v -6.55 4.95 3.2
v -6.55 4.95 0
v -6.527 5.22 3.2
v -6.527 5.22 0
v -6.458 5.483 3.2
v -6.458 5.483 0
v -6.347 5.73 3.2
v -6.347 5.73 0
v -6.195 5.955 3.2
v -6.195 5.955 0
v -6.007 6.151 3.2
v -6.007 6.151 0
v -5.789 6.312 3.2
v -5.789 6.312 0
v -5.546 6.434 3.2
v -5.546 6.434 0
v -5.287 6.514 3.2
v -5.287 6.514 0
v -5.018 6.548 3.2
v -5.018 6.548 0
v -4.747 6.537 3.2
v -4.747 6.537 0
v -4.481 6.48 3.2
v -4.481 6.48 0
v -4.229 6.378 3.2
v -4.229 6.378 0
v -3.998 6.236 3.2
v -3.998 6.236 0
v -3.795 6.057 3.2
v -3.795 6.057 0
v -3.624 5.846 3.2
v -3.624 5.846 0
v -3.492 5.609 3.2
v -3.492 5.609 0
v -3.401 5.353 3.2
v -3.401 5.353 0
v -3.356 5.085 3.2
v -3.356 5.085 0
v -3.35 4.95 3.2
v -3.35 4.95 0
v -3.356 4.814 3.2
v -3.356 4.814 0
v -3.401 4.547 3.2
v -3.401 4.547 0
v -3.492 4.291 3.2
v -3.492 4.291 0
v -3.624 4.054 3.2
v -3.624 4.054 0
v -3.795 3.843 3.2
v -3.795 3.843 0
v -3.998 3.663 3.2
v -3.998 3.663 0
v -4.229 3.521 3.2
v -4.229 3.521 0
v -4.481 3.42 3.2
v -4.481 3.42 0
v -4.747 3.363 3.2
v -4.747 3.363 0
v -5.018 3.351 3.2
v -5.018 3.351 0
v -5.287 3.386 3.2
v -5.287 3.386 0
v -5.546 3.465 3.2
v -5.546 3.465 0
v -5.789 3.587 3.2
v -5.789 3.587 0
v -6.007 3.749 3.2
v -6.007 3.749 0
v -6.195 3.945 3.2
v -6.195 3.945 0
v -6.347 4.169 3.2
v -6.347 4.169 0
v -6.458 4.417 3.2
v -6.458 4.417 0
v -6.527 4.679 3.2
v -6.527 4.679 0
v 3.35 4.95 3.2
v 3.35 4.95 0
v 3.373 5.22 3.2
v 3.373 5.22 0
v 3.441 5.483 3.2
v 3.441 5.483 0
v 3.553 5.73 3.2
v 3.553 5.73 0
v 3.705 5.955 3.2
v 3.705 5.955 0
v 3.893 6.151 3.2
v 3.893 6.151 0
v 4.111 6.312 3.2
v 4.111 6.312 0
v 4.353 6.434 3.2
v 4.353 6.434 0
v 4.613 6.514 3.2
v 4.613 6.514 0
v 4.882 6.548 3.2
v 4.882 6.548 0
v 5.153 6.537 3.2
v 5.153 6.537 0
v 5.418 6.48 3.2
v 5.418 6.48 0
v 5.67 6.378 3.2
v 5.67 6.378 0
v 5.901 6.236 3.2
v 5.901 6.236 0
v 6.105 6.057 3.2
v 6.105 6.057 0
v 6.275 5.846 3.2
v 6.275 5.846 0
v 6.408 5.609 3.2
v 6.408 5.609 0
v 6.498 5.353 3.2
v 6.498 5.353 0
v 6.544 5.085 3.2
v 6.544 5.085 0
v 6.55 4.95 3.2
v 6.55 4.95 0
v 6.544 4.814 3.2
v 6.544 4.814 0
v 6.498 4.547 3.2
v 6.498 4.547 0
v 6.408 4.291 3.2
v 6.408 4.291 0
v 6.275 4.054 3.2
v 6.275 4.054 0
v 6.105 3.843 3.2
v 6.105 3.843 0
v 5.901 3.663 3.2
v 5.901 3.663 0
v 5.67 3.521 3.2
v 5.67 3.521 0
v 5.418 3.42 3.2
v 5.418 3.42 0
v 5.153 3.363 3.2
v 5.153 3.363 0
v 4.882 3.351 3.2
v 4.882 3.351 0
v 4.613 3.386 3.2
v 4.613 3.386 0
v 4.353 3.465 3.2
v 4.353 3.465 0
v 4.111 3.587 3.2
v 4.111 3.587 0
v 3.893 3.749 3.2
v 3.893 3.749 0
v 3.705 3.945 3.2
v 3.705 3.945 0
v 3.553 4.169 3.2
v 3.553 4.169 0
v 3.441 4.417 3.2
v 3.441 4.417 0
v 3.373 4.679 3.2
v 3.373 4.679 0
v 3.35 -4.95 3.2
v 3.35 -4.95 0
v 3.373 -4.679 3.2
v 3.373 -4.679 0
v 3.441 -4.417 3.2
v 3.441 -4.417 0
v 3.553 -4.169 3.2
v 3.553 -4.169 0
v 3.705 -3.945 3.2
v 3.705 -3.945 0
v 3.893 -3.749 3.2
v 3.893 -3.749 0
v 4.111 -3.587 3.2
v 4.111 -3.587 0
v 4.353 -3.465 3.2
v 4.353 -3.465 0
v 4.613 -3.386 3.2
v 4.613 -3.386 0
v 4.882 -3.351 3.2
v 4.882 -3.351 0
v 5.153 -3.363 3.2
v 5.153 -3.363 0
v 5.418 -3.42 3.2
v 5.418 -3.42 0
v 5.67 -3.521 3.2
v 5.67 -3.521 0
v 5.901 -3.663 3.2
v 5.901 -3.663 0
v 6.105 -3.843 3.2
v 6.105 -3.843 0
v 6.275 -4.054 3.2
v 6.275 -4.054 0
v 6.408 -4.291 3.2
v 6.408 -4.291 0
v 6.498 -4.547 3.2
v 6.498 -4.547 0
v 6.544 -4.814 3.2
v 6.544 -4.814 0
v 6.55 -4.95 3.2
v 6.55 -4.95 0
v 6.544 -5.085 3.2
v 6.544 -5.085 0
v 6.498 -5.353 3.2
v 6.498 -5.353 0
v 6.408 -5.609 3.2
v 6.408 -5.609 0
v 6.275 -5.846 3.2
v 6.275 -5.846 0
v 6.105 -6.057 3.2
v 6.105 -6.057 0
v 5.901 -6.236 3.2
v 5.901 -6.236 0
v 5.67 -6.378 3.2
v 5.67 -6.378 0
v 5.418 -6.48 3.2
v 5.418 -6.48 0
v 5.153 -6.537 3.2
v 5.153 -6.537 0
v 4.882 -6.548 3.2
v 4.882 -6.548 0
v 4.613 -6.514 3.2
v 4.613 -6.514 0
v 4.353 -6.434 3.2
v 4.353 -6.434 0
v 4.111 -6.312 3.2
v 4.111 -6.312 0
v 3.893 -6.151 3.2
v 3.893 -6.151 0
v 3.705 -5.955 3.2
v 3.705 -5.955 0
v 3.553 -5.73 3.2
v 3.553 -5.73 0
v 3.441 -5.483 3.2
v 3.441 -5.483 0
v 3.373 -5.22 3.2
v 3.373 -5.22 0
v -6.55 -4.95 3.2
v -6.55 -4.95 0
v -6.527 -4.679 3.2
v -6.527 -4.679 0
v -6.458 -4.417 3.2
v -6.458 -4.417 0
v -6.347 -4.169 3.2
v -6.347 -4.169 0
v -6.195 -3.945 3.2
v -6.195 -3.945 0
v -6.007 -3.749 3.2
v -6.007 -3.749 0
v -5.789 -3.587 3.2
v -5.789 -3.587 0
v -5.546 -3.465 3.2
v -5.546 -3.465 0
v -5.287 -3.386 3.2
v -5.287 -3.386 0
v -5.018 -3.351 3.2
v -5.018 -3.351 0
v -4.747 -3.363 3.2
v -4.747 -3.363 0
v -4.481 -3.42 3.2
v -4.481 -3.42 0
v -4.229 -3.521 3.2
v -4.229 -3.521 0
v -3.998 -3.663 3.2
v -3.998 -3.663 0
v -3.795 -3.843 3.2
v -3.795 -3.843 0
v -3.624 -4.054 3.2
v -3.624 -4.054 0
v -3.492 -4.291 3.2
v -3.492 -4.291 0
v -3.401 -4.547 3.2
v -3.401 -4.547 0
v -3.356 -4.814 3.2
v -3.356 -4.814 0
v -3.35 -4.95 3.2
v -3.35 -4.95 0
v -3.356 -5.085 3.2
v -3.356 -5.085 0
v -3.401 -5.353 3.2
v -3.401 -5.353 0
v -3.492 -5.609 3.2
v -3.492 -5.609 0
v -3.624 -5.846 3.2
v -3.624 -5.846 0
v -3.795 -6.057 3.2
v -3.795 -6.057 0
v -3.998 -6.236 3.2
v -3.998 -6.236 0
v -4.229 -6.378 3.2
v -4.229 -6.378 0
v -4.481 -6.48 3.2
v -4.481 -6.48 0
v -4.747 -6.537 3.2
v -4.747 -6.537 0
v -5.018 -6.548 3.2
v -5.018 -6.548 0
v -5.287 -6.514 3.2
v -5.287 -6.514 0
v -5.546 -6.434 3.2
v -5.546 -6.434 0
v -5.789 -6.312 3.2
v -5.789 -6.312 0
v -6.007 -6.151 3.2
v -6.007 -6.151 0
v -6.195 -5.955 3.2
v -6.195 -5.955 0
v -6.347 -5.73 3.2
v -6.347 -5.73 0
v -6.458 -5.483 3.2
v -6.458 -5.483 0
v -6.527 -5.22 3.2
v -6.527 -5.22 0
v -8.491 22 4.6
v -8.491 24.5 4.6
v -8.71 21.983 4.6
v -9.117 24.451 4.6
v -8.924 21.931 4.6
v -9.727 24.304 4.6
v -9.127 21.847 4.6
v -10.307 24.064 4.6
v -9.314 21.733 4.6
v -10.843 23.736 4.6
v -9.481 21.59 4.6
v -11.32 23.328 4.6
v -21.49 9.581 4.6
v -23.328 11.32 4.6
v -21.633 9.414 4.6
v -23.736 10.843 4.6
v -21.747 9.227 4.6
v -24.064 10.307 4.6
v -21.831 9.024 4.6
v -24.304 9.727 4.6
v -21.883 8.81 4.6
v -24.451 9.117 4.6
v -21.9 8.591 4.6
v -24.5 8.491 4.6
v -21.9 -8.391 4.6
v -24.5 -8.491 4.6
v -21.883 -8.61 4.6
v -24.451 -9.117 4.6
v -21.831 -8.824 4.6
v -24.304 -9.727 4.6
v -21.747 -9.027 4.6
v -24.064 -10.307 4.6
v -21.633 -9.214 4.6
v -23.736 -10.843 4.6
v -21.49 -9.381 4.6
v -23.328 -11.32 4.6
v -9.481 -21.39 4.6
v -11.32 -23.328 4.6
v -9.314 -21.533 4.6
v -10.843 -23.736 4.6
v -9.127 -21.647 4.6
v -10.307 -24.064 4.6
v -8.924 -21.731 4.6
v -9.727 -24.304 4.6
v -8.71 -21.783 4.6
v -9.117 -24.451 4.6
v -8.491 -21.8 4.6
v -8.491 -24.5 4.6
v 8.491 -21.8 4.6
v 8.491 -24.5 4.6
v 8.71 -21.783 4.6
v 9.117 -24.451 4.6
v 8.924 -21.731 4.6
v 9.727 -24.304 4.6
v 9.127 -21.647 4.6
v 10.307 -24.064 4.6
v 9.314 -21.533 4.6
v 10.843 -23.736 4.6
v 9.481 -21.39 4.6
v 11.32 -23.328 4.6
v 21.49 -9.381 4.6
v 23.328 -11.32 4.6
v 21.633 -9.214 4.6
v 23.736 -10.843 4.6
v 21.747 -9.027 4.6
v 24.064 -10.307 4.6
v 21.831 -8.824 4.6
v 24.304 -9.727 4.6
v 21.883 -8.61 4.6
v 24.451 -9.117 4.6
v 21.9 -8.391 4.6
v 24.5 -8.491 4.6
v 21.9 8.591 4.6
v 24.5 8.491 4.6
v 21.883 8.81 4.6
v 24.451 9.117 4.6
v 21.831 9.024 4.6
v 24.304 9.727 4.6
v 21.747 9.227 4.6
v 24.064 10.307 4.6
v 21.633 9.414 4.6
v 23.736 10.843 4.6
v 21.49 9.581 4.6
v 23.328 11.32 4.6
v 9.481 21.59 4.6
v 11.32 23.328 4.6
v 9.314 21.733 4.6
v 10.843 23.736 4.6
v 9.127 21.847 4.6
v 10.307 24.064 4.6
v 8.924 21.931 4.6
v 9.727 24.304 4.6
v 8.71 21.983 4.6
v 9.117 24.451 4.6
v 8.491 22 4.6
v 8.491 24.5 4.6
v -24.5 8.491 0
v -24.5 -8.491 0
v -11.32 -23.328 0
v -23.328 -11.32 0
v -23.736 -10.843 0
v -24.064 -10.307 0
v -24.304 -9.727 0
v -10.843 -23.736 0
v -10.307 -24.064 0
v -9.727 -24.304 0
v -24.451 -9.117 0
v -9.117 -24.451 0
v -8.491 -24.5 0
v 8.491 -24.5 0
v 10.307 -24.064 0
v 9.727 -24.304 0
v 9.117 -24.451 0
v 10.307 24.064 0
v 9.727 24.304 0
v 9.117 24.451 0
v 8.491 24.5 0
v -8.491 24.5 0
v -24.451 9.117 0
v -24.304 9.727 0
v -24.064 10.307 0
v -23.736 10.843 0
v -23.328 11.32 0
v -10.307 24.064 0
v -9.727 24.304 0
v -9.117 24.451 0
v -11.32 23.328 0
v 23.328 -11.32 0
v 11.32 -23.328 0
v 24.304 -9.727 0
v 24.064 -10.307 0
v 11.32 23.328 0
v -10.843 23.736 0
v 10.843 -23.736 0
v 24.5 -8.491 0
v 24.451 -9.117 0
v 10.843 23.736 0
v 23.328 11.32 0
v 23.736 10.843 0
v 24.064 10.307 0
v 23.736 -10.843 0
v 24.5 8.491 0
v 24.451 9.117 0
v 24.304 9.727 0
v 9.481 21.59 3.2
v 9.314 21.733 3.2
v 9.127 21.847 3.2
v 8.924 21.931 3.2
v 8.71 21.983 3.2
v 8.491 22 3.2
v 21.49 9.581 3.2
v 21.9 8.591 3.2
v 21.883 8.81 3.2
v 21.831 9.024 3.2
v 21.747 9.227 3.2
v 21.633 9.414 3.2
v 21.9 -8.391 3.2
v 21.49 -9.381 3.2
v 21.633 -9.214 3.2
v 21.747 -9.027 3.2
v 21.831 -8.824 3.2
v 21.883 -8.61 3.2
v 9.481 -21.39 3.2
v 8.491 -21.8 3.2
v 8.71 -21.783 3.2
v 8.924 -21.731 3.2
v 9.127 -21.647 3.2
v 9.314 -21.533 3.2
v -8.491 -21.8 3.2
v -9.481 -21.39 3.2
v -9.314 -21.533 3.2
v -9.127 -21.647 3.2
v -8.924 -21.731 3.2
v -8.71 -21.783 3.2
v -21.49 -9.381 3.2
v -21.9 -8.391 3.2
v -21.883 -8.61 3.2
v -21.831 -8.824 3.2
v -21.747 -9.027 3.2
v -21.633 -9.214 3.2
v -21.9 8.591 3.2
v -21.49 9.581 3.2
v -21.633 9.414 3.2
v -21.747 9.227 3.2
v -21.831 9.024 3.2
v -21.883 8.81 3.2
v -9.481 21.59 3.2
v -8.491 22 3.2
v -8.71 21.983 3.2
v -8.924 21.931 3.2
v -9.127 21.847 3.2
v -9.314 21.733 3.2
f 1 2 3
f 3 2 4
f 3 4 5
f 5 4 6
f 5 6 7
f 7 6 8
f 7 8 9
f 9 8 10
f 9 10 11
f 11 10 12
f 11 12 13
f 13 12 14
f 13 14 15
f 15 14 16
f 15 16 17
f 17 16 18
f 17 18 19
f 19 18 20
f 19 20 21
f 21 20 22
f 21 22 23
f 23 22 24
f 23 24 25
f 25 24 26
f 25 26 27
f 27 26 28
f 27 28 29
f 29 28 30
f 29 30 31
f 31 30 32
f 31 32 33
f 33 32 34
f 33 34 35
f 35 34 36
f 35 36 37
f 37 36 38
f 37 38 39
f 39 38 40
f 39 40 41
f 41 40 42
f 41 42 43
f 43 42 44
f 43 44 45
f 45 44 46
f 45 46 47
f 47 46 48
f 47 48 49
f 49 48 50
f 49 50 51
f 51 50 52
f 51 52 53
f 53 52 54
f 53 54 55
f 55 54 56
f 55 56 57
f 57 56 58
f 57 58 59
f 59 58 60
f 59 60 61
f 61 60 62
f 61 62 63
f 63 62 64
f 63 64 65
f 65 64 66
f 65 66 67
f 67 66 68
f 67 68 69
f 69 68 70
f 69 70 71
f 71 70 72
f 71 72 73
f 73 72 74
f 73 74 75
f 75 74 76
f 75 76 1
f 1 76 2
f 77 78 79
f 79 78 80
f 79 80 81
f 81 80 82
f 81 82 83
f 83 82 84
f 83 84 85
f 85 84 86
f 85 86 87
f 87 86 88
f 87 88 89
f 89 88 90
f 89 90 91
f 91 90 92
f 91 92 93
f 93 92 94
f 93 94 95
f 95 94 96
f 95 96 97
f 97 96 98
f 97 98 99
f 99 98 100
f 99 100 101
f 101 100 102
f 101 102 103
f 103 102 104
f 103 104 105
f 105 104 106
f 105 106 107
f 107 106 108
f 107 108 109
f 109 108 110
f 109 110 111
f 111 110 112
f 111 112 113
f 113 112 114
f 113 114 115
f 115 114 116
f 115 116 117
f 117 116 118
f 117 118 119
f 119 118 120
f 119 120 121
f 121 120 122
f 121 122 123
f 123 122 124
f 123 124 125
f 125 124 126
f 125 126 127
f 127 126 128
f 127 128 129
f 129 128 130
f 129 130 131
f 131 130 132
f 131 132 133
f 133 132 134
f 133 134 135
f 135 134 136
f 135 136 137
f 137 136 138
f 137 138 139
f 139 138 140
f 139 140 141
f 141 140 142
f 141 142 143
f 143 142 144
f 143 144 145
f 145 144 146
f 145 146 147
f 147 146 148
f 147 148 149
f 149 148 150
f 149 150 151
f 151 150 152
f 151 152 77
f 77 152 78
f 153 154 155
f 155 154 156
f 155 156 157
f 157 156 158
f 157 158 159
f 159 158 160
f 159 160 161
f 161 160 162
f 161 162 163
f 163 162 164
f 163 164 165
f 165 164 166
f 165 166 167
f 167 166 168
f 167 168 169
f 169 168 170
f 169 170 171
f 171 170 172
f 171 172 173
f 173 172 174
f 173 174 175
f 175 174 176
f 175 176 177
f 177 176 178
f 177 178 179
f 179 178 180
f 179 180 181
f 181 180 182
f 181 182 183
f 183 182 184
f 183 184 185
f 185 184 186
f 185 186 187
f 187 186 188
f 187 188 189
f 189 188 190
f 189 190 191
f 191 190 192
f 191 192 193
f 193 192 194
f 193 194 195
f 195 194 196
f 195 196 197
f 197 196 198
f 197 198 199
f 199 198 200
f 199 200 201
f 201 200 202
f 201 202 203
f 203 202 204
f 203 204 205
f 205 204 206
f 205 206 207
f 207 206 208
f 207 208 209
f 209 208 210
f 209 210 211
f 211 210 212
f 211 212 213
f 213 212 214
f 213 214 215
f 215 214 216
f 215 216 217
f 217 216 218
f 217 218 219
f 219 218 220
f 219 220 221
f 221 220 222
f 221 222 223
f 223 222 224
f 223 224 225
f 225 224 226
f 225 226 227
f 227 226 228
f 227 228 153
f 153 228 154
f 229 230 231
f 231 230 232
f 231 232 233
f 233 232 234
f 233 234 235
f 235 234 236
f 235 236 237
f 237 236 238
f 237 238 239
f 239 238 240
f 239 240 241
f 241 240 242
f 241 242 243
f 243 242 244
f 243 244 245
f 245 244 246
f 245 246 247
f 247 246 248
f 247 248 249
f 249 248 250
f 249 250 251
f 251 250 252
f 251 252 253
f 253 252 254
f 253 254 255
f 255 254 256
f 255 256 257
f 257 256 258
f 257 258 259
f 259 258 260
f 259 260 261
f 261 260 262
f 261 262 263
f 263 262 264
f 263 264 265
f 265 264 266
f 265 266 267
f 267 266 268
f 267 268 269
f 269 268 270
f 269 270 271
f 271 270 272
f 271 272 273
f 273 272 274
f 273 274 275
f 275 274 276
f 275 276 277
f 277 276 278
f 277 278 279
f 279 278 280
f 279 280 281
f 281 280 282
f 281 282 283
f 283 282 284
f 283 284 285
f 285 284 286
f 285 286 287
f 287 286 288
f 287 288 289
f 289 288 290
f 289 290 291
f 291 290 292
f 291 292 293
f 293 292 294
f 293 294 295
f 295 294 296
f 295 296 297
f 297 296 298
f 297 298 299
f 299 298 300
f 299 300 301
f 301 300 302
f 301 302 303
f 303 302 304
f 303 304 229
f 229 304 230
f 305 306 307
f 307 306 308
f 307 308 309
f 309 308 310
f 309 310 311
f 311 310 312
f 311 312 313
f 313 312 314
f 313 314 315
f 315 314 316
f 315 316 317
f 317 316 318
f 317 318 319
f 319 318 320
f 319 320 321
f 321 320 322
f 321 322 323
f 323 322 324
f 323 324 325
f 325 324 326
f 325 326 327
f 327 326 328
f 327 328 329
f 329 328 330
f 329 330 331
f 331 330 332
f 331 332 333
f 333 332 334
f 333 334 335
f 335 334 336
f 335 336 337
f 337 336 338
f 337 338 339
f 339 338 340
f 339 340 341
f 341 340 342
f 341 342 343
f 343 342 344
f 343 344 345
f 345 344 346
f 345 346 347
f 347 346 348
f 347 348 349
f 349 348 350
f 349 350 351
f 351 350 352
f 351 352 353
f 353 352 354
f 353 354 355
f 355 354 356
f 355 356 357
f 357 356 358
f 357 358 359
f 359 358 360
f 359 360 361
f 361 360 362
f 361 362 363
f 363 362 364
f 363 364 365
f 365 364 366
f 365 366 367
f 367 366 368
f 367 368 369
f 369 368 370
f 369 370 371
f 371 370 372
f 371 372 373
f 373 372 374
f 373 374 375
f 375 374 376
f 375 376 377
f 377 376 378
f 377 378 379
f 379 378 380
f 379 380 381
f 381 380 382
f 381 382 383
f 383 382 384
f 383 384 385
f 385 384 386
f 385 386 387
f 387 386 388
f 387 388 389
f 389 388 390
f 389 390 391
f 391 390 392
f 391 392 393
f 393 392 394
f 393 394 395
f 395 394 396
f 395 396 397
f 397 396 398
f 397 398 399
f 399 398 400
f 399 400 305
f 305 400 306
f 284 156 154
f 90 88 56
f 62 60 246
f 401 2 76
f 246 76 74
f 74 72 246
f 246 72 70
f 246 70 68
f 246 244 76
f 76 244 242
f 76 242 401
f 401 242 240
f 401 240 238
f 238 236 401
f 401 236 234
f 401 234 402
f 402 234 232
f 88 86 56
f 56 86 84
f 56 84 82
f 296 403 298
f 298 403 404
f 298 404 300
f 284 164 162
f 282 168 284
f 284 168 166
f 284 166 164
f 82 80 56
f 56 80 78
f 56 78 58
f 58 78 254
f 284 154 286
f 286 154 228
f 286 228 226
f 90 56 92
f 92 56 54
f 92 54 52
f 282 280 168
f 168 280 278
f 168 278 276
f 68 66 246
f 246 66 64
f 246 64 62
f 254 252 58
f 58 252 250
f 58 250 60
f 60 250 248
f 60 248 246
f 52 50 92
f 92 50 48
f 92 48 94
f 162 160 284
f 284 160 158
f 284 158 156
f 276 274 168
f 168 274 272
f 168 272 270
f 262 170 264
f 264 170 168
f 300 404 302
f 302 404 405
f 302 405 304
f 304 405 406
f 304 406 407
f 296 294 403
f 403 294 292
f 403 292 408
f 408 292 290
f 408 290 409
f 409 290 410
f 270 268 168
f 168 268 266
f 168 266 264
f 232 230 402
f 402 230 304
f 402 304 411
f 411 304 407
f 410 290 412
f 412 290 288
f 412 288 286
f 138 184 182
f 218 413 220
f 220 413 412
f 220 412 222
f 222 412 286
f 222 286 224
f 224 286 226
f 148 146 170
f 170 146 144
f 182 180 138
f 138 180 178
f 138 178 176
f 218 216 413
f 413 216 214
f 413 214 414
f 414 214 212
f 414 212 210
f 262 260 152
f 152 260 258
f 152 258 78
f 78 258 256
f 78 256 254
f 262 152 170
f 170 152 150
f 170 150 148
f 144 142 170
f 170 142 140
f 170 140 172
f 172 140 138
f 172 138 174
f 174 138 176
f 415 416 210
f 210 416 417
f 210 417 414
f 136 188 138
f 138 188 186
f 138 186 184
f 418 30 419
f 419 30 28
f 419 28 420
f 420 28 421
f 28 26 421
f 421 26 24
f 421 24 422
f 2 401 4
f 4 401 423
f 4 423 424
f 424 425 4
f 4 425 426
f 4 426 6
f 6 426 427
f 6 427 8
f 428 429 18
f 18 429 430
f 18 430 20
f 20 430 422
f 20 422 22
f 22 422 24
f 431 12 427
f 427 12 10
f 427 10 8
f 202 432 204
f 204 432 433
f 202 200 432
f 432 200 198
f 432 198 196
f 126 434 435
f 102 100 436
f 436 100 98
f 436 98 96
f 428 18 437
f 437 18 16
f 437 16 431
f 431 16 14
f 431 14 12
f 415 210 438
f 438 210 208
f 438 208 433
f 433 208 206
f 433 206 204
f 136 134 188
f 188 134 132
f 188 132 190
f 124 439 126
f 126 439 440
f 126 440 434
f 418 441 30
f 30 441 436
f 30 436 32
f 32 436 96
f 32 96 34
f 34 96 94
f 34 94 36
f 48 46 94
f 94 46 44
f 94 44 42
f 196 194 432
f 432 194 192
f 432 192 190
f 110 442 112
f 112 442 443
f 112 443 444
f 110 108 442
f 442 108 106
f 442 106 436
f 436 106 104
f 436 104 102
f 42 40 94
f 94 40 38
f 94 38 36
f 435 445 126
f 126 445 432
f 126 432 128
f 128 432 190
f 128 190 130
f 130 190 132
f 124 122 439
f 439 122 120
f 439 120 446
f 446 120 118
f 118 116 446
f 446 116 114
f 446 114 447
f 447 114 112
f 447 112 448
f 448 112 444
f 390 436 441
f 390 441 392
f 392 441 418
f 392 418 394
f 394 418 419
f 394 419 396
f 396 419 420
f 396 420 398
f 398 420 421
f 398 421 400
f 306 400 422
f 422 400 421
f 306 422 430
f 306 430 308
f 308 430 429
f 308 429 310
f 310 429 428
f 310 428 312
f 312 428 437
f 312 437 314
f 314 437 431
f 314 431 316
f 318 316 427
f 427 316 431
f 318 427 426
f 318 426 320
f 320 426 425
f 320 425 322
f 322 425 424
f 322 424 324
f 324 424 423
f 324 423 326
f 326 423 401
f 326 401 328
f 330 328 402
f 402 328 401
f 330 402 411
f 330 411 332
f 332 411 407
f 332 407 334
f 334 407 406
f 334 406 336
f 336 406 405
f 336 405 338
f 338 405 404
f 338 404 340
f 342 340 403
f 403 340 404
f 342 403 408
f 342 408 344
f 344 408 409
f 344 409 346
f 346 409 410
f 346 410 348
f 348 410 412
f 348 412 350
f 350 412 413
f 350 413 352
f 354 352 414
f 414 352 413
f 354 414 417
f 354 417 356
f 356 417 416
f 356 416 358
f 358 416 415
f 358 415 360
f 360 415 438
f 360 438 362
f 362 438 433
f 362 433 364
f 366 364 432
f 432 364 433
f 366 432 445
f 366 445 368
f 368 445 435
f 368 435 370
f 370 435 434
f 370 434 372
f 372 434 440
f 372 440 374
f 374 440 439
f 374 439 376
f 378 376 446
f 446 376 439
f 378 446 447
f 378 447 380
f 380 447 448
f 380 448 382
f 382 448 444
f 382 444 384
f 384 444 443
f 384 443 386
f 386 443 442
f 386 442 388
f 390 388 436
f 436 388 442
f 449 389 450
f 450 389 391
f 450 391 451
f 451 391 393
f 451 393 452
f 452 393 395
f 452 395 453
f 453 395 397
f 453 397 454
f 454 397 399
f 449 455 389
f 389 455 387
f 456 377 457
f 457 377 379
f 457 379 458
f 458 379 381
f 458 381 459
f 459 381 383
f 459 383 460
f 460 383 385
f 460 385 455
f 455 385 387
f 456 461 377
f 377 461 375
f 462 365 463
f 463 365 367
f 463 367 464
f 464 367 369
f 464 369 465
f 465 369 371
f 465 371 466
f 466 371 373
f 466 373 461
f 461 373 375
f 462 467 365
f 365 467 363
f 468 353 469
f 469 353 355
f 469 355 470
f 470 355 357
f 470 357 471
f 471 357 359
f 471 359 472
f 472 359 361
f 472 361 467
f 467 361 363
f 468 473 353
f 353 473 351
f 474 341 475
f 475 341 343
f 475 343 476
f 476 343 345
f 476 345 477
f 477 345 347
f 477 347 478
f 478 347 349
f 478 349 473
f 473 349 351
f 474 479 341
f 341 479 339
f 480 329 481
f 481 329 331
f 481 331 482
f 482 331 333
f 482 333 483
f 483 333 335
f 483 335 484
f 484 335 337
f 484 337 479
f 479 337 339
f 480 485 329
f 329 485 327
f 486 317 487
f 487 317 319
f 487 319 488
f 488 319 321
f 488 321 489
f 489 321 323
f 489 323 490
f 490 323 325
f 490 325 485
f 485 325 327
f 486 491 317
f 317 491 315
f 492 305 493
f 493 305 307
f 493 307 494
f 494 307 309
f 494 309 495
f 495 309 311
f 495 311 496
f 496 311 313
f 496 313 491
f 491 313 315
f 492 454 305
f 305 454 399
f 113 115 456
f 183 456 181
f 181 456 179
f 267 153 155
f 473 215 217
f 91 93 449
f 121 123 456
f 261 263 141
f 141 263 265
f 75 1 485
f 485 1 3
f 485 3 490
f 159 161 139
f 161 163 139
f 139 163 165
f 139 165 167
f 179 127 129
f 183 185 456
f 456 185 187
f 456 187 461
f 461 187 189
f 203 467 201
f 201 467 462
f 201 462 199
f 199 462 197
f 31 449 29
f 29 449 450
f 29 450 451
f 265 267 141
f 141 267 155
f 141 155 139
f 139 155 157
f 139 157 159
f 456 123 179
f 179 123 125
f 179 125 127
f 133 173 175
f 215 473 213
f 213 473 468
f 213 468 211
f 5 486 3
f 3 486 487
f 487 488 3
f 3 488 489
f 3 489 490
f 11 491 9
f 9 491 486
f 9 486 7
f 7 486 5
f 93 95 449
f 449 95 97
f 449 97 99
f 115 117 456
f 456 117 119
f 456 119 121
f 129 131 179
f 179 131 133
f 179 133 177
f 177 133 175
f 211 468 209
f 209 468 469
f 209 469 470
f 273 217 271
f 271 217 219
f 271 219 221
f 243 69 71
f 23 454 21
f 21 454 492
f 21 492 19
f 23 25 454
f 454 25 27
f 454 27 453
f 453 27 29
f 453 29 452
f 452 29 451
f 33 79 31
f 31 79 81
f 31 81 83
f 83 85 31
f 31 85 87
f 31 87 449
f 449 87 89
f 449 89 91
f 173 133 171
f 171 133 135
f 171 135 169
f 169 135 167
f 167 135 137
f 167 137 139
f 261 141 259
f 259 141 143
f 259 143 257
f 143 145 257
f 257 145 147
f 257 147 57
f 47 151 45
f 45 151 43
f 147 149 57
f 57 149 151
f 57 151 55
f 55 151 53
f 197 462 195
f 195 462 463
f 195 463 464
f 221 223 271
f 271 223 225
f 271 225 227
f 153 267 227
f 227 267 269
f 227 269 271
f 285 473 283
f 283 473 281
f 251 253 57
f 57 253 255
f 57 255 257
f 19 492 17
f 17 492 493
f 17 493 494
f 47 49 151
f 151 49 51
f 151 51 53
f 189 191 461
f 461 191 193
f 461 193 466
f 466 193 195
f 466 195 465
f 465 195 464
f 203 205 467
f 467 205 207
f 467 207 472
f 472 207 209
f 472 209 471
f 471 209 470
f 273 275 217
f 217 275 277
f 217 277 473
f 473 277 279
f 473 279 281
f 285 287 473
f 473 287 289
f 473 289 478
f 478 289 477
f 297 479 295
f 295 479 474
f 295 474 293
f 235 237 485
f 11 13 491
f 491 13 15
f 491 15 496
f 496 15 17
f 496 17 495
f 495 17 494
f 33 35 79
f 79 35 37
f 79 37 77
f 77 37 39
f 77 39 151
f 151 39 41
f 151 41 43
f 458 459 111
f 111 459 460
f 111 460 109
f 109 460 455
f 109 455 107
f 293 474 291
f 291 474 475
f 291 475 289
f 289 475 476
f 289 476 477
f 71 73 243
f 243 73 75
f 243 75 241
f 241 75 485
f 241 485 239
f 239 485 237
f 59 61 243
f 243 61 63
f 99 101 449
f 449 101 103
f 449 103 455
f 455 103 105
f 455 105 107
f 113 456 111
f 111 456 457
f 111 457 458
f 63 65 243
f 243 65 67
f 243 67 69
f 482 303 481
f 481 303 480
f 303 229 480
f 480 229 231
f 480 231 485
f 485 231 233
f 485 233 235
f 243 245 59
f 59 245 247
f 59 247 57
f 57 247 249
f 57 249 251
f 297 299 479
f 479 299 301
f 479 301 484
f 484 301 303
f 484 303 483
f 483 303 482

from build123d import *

# Parameters (mm, degrees)
SKETCH1_R           = 1.6
BOSS_EXTRUDE1_DEPTH = 4.6
CUT_EXTRUDE2_DEPTH  = 1.4


with BuildPart() as part:
    # Sketch1 → Boss-Extrude1 (new body)
    with BuildSketch(Plane.XY):
        with BuildLine():
            Line((-11.319805153, 23.328427125), (-23.328427125, 11.319805153))
            ThreePointArc((-23.328427125, 11.319805153), (-24.19551813, 10.022111758), (-24.5, 8.491378029))
            Line((-24.5, 8.491378029), (-24.5, -8.491378029))
            ThreePointArc((-24.5, -8.491378029), (-24.19551813, -10.022111758), (-23.328427125, -11.319805153))
            Line((-23.328427125, -11.319805153), (-11.319805153, -23.328427125))
            ThreePointArc((-11.319805153, -23.328427125), (-10.022111758, -24.19551813), (-8.491378029, -24.5))
            Line((-8.491378029, -24.5), (8.491378029, -24.5))
            ThreePointArc((8.491378029, -24.5), (10.022111758, -24.19551813), (11.319805153, -23.328427125))
            Line((11.319805153, -23.328427125), (23.328427125, -11.319805153))
            ThreePointArc((23.328427125, -11.319805153), (24.19551813, -10.022111758), (24.5, -8.491378029))
            Line((24.5, -8.491378029), (24.5, 8.491378029))
            ThreePointArc((24.5, 8.491378029), (24.19551813, 10.022111758), (23.328427125, 11.319805153))
            Line((23.328427125, 11.319805153), (11.319805153, 23.328427125))
            ThreePointArc((11.319805153, 23.328427125), (10.022111758, 24.19551813), (8.491378029, 24.5))
            Line((8.491378029, 24.5), (-8.491378029, 24.5))
            ThreePointArc((-8.491378029, 24.5), (-10.022111758, 24.19551813), (-11.319805153, 23.328427125))
        make_face()
        with Locations((-4.949747468, 4.949747468)):
            Circle(SKETCH1_R, mode=Mode.SUBTRACT)
        with Locations((4.949747468, 4.949747468)):
            Circle(SKETCH1_R, mode=Mode.SUBTRACT)
        with Locations((4.949747468, -4.949747468)):
            Circle(SKETCH1_R, mode=Mode.SUBTRACT)
        with Locations((-4.949747468, -4.949747468)):
            Circle(SKETCH1_R, mode=Mode.SUBTRACT)
    extrude(amount=BOSS_EXTRUDE1_DEPTH)

    # Sketch3 → Cut-Extrude2 (cut)
    with BuildSketch(Plane.XY.offset(4.6)):
        with BuildLine():
            Line((8.491378029, 22), (-8.491378029, 22))
            ThreePointArc((-8.491378029, 22), (-9.027134834, 21.893431346), (-9.481327522, 21.589949494))
            Line((-9.481327522, 21.589949494), (-21.489949494, 9.581327522))
            ThreePointArc((-21.489949494, 9.581327522), (-21.793431346, 9.127134834), (-21.9, 8.591378029))
            Line((-21.9, 8.591378029), (-21.9, -8.391378029))
            ThreePointArc((-21.9, -8.391378029), (-21.793431346, -8.927134834), (-21.489949494, -9.381327522))
            Line((-21.489949494, -9.381327522), (-9.481327522, -21.389949494))
            ThreePointArc((-9.481327522, -21.389949494), (-9.027134834, -21.693431346), (-8.491378029, -21.8))
            Line((-8.491378029, -21.8), (8.491378029, -21.8))
            ThreePointArc((8.491378029, -21.8), (9.027134834, -21.693431346), (9.481327522, -21.389949494))
            Line((9.481327522, -21.389949494), (21.489949494, -9.381327522))
            ThreePointArc((21.489949494, -9.381327522), (21.793431346, -8.927134834), (21.9, -8.391378029))
            Line((21.9, -8.391378029), (21.9, 8.591378029))
            ThreePointArc((21.9, 8.591378029), (21.793431346, 9.127134834), (21.489949494, 9.581327522))
            Line((21.489949494, 9.581327522), (9.481327522, 21.589949494))
            ThreePointArc((9.481327522, 21.589949494), (9.027134834, 21.893431346), (8.491378029, 22))
        make_face()
    extrude(amount=-CUT_EXTRUDE2_DEPTH, mode=Mode.SUBTRACT)


solid = part.part
